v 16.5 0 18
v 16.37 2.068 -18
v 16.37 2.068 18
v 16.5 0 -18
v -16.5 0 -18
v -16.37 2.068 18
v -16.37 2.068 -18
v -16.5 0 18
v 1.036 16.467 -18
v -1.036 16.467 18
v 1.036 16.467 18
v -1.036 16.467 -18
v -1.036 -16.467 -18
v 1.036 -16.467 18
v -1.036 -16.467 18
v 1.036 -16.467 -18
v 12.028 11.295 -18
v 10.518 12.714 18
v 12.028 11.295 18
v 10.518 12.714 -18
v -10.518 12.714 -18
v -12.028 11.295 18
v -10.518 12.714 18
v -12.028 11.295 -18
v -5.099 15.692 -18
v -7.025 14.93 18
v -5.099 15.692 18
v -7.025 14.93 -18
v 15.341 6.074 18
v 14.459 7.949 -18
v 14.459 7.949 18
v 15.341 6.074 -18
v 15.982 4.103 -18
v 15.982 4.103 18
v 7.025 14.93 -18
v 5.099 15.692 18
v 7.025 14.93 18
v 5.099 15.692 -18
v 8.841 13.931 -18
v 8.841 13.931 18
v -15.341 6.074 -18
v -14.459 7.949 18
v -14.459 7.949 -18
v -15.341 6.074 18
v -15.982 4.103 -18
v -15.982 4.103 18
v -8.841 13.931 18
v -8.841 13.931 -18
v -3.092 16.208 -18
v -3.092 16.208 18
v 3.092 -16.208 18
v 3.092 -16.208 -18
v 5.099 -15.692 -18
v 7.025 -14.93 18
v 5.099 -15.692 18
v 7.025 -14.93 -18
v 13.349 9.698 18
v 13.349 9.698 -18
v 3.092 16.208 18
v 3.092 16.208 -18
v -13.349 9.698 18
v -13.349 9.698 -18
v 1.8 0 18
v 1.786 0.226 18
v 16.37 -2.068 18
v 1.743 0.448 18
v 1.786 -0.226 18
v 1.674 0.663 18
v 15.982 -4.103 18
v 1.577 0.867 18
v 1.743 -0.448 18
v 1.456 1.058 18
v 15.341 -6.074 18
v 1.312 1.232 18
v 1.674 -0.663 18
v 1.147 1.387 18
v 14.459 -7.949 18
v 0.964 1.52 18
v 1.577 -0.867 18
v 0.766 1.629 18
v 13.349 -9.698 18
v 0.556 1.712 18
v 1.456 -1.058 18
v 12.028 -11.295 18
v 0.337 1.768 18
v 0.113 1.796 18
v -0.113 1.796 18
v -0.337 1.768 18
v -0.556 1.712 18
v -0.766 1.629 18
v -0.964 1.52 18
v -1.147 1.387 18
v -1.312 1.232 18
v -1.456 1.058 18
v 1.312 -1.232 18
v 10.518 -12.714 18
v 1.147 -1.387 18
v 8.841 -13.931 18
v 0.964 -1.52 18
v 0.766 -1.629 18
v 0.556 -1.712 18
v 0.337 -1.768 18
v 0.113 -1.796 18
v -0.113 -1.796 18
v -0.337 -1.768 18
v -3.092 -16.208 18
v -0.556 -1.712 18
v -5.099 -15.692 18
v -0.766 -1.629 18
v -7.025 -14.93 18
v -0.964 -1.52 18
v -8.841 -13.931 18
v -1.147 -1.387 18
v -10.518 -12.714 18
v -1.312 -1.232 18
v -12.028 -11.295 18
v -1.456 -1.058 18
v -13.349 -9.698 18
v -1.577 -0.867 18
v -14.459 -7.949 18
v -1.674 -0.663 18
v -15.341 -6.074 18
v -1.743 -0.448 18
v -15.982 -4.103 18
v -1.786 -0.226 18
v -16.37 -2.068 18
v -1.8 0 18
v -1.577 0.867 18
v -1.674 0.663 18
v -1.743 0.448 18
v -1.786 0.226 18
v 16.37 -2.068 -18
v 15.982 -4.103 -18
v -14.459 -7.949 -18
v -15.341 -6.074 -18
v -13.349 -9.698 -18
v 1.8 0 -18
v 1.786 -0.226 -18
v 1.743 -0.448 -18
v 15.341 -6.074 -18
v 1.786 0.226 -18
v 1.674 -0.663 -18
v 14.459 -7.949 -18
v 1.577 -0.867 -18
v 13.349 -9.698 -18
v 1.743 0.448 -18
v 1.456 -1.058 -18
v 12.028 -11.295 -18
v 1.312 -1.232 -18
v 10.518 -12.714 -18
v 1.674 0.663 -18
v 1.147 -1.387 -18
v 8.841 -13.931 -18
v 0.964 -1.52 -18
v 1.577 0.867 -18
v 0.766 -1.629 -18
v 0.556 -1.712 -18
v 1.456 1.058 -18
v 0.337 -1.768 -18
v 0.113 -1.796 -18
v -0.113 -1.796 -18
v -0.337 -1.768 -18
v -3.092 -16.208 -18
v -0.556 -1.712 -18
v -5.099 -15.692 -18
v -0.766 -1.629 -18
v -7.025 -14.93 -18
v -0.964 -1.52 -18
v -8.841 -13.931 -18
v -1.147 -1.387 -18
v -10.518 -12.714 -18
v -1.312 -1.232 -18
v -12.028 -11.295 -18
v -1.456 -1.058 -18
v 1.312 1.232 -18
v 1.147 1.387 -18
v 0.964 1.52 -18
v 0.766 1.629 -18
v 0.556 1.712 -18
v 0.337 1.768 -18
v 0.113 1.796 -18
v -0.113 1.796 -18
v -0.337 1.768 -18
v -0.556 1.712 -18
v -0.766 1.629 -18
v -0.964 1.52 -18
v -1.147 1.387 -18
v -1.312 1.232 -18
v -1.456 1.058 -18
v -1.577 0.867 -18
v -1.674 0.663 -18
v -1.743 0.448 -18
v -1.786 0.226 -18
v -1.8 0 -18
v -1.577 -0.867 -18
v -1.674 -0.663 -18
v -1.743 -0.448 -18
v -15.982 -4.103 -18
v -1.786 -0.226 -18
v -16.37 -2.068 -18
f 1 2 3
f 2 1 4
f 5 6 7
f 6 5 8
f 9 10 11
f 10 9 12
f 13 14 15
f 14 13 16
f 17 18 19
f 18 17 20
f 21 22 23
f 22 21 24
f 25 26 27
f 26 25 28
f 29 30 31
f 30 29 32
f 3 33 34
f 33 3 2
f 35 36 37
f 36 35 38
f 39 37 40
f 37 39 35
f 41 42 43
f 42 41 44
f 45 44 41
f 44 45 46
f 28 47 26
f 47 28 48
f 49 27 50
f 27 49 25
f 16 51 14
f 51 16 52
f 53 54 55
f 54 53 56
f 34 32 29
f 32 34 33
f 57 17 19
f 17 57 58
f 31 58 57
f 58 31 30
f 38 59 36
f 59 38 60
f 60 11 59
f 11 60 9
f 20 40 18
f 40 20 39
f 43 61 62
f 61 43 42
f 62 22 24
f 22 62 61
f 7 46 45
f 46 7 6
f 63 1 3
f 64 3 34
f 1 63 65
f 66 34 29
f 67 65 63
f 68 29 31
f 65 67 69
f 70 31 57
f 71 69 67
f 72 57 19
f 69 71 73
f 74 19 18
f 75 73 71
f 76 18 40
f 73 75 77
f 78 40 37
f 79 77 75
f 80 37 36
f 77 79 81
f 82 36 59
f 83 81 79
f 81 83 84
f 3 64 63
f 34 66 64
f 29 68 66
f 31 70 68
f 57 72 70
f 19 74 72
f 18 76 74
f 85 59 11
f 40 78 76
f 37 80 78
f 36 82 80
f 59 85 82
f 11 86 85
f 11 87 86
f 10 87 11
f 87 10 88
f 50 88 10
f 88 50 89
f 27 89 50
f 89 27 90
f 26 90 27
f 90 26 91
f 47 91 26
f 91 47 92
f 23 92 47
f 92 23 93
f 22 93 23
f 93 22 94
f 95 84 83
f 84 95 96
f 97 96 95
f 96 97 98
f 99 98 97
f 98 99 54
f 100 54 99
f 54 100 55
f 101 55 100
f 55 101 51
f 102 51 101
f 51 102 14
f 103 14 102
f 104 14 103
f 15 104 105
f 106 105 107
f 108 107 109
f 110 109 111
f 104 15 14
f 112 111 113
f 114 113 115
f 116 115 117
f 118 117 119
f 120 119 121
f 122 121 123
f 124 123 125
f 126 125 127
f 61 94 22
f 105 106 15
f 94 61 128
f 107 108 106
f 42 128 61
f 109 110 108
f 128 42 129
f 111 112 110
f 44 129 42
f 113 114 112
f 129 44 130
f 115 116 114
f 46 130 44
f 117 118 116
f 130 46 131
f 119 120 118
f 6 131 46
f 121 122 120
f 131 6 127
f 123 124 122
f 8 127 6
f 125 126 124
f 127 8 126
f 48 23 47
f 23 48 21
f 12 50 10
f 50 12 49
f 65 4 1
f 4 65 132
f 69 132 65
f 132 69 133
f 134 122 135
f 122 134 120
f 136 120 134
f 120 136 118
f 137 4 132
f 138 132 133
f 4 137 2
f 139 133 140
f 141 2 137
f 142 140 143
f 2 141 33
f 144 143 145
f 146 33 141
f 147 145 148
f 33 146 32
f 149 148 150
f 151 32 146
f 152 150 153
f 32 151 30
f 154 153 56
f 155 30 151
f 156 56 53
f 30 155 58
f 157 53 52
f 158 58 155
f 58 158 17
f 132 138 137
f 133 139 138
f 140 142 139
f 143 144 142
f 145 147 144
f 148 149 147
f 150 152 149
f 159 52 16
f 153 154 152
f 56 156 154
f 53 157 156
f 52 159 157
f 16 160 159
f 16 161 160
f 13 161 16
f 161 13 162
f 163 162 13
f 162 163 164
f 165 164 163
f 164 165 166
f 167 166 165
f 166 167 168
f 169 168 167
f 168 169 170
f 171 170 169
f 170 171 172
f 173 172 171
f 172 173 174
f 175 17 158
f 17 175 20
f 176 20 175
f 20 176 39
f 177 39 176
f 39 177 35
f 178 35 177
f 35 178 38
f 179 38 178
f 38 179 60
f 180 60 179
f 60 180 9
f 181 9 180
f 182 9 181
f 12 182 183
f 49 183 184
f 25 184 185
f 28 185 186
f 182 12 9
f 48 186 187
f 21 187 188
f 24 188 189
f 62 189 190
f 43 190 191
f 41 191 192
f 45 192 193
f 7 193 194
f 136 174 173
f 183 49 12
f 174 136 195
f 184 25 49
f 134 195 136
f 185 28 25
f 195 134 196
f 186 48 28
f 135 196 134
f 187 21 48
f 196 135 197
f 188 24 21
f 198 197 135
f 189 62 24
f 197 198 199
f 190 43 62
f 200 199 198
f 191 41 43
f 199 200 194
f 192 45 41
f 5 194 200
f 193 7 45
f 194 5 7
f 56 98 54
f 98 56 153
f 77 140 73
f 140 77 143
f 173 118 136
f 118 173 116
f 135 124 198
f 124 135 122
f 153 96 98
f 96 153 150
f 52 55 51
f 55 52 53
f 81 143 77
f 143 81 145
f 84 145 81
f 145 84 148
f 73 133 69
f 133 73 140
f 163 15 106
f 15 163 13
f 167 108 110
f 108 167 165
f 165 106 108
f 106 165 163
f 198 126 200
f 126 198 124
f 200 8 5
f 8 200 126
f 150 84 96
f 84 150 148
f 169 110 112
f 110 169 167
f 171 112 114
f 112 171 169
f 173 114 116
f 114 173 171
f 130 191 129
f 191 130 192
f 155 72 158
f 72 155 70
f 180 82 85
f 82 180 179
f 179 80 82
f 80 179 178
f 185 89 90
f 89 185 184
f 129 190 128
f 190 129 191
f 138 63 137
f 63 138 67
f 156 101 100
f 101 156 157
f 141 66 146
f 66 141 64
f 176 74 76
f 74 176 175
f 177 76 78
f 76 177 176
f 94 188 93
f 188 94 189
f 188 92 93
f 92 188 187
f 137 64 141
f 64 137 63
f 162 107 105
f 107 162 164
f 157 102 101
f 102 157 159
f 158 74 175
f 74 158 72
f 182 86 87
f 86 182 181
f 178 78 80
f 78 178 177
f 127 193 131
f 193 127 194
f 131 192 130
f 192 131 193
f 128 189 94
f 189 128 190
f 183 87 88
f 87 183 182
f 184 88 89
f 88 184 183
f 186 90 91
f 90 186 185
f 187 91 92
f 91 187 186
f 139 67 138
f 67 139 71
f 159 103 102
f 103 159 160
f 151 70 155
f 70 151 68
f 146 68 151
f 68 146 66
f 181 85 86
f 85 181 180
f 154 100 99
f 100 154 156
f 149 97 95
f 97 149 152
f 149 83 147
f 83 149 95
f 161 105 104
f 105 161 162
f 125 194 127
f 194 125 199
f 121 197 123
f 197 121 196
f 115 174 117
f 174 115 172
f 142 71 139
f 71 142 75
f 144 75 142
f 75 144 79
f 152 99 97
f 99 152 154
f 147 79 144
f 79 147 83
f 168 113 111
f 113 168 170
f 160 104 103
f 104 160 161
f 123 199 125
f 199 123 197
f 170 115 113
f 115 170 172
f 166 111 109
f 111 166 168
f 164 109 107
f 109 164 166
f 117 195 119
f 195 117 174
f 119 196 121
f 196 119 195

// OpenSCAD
$fn = 50;


difference() {
	union() {
		translate(v = [0, 0, -18.0000000000]) {
			cylinder(h = 36, r = 16.5000000000);
		}
	}
	union() {
		translate(v = [0, 0, -100.0000000000]) {
			cylinder(h = 200, r = 1.8000000000);
		}
	}
}
